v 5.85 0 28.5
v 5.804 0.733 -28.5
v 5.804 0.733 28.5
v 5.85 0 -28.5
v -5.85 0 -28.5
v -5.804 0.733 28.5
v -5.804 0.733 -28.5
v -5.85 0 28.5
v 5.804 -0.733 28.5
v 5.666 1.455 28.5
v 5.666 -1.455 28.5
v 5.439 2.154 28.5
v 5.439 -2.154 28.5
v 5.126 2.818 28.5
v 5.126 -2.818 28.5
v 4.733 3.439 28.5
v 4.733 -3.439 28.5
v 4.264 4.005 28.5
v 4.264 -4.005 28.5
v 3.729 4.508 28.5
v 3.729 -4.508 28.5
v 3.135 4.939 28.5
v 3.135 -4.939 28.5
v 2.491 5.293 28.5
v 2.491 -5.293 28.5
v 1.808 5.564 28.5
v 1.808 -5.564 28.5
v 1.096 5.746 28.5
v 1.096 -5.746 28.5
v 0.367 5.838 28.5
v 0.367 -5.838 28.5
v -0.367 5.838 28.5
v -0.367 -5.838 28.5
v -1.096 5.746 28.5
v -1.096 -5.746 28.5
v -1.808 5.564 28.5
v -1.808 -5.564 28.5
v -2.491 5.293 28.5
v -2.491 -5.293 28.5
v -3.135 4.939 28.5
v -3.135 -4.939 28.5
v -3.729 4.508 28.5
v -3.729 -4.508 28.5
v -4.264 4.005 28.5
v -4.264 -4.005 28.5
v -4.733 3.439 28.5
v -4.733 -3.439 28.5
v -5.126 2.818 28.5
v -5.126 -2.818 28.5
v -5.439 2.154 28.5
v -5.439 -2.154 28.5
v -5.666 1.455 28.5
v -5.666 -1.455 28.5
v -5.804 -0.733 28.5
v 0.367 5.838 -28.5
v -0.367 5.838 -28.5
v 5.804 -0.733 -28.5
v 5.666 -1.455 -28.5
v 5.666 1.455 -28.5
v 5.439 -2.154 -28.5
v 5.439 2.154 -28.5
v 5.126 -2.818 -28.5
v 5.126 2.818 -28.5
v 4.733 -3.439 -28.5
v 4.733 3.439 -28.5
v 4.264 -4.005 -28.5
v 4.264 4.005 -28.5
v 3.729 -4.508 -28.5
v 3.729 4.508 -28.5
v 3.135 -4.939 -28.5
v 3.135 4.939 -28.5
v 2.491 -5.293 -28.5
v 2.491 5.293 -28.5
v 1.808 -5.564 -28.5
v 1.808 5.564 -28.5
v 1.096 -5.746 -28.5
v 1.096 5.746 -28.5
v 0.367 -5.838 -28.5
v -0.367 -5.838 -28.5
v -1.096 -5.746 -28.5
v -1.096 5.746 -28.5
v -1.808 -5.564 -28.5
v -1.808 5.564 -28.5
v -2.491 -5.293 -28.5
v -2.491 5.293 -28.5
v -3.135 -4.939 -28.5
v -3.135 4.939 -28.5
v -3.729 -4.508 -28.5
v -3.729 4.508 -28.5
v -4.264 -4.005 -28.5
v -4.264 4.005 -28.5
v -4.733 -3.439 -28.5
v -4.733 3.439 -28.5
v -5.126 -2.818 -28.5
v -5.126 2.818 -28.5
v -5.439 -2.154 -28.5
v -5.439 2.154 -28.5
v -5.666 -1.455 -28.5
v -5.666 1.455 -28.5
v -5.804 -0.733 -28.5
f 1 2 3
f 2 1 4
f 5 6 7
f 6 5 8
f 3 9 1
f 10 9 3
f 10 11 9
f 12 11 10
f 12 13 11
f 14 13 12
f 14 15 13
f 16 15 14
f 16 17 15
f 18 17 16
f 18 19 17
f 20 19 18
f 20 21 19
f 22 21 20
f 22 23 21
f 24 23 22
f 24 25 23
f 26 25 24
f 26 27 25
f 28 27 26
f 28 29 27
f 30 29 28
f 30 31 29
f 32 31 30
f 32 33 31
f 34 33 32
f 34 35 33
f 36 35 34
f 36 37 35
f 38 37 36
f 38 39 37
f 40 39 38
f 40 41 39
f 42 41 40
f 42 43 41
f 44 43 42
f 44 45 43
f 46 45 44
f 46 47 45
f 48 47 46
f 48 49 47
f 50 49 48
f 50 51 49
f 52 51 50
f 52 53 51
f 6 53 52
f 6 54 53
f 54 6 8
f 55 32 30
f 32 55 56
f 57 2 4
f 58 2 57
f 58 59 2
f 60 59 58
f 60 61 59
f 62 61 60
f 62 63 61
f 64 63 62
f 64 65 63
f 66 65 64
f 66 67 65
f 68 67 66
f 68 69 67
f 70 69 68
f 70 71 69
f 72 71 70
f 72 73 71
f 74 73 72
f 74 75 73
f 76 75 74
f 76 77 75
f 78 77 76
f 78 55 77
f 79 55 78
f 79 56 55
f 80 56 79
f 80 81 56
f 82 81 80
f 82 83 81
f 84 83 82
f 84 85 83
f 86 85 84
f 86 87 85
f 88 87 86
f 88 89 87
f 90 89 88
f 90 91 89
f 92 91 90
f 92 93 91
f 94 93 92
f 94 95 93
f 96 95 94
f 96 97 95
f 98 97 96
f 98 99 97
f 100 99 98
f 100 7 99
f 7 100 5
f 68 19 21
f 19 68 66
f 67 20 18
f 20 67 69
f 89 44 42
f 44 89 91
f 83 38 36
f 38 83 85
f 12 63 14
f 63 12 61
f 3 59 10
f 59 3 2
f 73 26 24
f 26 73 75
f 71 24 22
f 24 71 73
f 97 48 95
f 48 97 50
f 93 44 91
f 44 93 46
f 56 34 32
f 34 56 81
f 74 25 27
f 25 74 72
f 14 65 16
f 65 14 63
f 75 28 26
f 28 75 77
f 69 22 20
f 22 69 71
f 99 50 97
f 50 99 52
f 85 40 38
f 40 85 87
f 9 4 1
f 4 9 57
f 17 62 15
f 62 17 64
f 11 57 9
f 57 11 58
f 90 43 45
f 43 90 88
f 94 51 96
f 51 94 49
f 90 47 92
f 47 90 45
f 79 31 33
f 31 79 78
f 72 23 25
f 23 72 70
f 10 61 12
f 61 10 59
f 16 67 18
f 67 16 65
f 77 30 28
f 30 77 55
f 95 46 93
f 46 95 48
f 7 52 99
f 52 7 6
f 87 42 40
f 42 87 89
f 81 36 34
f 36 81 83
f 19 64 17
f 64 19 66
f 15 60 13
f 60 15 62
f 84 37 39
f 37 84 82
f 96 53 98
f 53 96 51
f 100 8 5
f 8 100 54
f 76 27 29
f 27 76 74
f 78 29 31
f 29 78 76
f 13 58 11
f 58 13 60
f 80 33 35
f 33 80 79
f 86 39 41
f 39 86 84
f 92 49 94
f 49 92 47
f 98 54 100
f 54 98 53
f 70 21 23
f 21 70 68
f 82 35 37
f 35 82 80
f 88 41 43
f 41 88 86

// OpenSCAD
$fn = 50;


difference() {
	union() {
		translate(v = [0, 0, -28.5000000000]) {
			cylinder(h = 57, r = 5.8500000000);
		}
	}
	union() {
		translate(v = [0, 0, -100.0000000000]) {
			cylinder(h = 200, r = 0);
		}
	}
}
